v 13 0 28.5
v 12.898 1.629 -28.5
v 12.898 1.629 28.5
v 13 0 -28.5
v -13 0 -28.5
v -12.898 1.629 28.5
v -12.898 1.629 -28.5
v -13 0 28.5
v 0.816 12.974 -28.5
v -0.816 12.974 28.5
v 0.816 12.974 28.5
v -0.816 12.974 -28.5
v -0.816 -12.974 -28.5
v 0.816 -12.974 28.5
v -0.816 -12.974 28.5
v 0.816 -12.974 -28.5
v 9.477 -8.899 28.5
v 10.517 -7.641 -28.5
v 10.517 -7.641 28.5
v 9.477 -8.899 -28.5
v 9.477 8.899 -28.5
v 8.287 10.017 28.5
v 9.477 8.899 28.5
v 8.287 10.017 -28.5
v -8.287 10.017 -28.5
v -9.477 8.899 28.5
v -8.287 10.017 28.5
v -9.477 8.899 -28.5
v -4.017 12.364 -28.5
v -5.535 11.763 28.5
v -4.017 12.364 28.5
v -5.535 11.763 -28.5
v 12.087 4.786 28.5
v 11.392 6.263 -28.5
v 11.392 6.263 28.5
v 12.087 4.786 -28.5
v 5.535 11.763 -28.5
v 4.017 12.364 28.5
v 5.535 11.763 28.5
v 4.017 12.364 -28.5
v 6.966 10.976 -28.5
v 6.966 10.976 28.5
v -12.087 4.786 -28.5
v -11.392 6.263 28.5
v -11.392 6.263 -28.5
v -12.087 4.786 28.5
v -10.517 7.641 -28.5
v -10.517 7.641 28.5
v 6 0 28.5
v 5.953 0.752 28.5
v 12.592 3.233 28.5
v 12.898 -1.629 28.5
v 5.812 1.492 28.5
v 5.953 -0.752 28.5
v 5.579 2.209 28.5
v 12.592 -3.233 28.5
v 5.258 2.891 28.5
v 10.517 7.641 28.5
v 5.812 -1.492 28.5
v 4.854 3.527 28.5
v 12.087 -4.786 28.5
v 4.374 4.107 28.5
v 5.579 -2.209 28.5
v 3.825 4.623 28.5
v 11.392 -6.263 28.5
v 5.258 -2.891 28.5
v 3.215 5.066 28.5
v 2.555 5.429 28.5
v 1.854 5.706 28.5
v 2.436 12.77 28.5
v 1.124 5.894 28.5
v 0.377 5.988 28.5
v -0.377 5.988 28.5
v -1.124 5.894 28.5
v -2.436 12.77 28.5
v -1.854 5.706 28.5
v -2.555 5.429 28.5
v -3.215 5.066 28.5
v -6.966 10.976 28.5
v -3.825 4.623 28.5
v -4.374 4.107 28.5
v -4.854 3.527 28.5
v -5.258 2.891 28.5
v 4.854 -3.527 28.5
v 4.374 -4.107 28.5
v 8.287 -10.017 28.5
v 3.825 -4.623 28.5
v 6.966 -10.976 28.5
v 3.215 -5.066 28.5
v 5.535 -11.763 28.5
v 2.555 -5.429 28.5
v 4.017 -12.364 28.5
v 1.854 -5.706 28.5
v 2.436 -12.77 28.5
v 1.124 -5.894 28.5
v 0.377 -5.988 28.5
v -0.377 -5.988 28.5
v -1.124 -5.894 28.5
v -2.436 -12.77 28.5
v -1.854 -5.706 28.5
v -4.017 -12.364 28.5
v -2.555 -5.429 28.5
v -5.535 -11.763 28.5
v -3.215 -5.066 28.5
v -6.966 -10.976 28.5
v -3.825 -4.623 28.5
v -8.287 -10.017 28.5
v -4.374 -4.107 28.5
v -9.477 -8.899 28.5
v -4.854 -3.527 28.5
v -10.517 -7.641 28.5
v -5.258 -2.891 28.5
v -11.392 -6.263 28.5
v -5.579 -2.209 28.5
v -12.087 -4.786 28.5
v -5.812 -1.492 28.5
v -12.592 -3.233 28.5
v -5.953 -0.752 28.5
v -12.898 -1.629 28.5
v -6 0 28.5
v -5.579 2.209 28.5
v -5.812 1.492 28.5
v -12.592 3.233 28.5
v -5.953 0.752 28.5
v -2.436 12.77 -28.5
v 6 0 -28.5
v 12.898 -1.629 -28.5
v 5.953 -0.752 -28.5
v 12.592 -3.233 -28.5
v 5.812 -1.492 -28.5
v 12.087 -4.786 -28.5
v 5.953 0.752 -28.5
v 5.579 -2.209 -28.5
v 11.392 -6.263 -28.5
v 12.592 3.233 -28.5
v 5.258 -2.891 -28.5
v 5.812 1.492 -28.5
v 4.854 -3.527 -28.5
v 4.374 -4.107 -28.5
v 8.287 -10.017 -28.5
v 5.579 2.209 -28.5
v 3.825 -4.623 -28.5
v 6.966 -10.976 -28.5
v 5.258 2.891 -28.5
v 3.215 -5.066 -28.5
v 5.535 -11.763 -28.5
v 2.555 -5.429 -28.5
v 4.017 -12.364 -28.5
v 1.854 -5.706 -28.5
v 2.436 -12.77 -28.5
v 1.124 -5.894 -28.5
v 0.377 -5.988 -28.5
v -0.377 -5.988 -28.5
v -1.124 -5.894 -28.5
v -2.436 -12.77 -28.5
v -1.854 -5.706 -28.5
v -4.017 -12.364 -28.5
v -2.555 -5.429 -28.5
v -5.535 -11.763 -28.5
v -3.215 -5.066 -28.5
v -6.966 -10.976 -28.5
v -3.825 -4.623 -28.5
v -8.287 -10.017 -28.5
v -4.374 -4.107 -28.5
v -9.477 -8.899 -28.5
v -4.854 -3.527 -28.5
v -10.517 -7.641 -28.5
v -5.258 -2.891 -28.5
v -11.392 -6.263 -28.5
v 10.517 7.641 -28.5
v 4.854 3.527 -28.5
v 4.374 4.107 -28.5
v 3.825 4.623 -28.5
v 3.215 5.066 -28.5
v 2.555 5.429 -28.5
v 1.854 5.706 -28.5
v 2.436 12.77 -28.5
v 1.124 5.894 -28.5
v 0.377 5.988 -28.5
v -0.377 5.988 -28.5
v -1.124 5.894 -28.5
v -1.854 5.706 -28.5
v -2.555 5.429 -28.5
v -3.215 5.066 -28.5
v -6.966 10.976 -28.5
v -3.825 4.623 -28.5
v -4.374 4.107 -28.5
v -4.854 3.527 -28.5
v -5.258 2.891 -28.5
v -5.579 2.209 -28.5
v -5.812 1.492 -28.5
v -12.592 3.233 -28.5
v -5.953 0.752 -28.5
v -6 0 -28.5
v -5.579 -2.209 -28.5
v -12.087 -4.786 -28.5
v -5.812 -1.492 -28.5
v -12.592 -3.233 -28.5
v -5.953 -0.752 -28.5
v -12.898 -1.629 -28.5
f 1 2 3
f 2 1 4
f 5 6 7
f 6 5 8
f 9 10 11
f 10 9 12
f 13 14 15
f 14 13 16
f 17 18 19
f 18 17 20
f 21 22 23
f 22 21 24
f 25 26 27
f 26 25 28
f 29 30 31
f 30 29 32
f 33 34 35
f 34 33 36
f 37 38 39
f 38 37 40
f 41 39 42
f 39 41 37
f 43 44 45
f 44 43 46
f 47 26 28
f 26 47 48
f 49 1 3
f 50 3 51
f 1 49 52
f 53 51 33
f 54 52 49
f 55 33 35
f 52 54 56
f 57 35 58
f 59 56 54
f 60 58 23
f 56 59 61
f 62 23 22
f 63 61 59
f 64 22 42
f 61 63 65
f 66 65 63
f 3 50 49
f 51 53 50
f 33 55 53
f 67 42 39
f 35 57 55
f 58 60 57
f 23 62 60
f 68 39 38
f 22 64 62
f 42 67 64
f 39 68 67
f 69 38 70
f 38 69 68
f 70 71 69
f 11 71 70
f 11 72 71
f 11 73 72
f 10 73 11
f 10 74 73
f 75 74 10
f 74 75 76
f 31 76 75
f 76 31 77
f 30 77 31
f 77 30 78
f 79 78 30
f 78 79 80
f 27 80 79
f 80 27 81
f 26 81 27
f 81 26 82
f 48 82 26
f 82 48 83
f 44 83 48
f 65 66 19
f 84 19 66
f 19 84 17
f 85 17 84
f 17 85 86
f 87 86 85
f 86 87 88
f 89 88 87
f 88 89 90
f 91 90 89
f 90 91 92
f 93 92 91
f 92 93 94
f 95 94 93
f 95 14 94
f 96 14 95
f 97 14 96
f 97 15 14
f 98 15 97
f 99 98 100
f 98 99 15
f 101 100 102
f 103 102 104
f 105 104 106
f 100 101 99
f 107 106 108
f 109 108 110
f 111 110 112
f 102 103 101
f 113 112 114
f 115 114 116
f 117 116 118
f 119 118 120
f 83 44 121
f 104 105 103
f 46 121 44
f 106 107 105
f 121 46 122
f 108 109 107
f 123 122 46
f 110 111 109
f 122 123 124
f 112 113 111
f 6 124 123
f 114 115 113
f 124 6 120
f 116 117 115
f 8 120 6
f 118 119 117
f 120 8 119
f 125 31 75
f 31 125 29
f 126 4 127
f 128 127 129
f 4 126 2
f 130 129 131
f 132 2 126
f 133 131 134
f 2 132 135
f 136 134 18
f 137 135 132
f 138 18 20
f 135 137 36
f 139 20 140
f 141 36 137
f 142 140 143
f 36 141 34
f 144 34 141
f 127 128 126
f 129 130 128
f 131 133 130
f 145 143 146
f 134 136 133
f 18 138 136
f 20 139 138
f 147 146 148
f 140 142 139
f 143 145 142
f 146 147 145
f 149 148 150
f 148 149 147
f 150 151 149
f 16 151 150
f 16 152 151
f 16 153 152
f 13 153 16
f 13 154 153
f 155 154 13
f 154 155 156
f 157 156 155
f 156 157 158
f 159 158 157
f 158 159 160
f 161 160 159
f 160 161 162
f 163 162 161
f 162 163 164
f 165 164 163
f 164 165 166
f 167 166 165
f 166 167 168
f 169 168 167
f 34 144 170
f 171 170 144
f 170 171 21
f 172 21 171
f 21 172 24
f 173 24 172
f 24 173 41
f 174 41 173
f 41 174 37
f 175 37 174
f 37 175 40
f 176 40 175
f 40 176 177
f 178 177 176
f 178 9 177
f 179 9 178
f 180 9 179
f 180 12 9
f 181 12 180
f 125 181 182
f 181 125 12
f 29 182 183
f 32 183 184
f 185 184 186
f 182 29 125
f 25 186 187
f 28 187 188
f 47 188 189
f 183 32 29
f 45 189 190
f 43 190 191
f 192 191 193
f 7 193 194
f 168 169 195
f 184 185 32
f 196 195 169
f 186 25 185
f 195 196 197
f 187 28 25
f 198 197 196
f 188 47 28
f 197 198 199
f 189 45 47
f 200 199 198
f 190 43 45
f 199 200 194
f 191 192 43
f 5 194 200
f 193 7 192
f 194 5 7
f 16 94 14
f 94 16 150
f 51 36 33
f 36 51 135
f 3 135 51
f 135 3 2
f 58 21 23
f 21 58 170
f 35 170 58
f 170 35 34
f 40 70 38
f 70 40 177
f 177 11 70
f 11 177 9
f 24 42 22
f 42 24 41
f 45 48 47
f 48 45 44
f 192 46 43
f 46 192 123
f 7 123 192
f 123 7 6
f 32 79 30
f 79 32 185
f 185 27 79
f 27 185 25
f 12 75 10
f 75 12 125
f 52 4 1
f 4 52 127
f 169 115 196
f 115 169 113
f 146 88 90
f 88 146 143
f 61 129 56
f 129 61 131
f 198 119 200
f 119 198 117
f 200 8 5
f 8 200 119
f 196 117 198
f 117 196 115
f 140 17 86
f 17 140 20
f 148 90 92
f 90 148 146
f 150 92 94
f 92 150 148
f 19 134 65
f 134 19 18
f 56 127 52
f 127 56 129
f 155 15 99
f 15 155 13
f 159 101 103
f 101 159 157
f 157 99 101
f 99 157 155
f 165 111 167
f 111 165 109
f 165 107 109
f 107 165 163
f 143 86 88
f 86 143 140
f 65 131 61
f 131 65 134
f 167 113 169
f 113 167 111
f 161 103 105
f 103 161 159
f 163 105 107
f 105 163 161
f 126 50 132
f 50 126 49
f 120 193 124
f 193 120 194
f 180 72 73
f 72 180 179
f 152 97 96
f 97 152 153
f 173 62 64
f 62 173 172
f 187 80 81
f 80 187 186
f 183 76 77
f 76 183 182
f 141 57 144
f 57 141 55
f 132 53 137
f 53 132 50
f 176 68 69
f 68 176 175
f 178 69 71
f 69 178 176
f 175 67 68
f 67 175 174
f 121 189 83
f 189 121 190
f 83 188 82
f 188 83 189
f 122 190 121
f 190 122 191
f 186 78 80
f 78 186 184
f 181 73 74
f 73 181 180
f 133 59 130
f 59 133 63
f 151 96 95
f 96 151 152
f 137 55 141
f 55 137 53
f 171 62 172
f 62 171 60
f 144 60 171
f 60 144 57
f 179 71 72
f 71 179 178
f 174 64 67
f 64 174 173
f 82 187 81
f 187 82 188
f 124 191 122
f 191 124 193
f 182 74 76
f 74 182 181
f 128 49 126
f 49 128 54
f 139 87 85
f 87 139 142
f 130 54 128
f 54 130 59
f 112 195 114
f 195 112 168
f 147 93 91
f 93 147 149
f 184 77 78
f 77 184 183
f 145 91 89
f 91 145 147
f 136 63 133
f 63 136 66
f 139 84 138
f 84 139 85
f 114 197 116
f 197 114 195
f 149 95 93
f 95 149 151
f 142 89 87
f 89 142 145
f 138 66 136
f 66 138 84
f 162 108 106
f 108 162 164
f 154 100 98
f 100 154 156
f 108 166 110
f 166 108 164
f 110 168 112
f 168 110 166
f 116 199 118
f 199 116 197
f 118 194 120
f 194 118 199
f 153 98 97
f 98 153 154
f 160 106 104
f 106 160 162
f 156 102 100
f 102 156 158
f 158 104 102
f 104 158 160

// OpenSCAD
$fn = 50;


difference() {
	union() {
		translate(v = [0, 0, -28.5000000000]) {
			cylinder(h = 57, r = 13.0000000000);
		}
	}
	union() {
		translate(v = [0, 0, -100.0000000000]) {
			cylinder(h = 200, r = 6);
		}
	}
}
